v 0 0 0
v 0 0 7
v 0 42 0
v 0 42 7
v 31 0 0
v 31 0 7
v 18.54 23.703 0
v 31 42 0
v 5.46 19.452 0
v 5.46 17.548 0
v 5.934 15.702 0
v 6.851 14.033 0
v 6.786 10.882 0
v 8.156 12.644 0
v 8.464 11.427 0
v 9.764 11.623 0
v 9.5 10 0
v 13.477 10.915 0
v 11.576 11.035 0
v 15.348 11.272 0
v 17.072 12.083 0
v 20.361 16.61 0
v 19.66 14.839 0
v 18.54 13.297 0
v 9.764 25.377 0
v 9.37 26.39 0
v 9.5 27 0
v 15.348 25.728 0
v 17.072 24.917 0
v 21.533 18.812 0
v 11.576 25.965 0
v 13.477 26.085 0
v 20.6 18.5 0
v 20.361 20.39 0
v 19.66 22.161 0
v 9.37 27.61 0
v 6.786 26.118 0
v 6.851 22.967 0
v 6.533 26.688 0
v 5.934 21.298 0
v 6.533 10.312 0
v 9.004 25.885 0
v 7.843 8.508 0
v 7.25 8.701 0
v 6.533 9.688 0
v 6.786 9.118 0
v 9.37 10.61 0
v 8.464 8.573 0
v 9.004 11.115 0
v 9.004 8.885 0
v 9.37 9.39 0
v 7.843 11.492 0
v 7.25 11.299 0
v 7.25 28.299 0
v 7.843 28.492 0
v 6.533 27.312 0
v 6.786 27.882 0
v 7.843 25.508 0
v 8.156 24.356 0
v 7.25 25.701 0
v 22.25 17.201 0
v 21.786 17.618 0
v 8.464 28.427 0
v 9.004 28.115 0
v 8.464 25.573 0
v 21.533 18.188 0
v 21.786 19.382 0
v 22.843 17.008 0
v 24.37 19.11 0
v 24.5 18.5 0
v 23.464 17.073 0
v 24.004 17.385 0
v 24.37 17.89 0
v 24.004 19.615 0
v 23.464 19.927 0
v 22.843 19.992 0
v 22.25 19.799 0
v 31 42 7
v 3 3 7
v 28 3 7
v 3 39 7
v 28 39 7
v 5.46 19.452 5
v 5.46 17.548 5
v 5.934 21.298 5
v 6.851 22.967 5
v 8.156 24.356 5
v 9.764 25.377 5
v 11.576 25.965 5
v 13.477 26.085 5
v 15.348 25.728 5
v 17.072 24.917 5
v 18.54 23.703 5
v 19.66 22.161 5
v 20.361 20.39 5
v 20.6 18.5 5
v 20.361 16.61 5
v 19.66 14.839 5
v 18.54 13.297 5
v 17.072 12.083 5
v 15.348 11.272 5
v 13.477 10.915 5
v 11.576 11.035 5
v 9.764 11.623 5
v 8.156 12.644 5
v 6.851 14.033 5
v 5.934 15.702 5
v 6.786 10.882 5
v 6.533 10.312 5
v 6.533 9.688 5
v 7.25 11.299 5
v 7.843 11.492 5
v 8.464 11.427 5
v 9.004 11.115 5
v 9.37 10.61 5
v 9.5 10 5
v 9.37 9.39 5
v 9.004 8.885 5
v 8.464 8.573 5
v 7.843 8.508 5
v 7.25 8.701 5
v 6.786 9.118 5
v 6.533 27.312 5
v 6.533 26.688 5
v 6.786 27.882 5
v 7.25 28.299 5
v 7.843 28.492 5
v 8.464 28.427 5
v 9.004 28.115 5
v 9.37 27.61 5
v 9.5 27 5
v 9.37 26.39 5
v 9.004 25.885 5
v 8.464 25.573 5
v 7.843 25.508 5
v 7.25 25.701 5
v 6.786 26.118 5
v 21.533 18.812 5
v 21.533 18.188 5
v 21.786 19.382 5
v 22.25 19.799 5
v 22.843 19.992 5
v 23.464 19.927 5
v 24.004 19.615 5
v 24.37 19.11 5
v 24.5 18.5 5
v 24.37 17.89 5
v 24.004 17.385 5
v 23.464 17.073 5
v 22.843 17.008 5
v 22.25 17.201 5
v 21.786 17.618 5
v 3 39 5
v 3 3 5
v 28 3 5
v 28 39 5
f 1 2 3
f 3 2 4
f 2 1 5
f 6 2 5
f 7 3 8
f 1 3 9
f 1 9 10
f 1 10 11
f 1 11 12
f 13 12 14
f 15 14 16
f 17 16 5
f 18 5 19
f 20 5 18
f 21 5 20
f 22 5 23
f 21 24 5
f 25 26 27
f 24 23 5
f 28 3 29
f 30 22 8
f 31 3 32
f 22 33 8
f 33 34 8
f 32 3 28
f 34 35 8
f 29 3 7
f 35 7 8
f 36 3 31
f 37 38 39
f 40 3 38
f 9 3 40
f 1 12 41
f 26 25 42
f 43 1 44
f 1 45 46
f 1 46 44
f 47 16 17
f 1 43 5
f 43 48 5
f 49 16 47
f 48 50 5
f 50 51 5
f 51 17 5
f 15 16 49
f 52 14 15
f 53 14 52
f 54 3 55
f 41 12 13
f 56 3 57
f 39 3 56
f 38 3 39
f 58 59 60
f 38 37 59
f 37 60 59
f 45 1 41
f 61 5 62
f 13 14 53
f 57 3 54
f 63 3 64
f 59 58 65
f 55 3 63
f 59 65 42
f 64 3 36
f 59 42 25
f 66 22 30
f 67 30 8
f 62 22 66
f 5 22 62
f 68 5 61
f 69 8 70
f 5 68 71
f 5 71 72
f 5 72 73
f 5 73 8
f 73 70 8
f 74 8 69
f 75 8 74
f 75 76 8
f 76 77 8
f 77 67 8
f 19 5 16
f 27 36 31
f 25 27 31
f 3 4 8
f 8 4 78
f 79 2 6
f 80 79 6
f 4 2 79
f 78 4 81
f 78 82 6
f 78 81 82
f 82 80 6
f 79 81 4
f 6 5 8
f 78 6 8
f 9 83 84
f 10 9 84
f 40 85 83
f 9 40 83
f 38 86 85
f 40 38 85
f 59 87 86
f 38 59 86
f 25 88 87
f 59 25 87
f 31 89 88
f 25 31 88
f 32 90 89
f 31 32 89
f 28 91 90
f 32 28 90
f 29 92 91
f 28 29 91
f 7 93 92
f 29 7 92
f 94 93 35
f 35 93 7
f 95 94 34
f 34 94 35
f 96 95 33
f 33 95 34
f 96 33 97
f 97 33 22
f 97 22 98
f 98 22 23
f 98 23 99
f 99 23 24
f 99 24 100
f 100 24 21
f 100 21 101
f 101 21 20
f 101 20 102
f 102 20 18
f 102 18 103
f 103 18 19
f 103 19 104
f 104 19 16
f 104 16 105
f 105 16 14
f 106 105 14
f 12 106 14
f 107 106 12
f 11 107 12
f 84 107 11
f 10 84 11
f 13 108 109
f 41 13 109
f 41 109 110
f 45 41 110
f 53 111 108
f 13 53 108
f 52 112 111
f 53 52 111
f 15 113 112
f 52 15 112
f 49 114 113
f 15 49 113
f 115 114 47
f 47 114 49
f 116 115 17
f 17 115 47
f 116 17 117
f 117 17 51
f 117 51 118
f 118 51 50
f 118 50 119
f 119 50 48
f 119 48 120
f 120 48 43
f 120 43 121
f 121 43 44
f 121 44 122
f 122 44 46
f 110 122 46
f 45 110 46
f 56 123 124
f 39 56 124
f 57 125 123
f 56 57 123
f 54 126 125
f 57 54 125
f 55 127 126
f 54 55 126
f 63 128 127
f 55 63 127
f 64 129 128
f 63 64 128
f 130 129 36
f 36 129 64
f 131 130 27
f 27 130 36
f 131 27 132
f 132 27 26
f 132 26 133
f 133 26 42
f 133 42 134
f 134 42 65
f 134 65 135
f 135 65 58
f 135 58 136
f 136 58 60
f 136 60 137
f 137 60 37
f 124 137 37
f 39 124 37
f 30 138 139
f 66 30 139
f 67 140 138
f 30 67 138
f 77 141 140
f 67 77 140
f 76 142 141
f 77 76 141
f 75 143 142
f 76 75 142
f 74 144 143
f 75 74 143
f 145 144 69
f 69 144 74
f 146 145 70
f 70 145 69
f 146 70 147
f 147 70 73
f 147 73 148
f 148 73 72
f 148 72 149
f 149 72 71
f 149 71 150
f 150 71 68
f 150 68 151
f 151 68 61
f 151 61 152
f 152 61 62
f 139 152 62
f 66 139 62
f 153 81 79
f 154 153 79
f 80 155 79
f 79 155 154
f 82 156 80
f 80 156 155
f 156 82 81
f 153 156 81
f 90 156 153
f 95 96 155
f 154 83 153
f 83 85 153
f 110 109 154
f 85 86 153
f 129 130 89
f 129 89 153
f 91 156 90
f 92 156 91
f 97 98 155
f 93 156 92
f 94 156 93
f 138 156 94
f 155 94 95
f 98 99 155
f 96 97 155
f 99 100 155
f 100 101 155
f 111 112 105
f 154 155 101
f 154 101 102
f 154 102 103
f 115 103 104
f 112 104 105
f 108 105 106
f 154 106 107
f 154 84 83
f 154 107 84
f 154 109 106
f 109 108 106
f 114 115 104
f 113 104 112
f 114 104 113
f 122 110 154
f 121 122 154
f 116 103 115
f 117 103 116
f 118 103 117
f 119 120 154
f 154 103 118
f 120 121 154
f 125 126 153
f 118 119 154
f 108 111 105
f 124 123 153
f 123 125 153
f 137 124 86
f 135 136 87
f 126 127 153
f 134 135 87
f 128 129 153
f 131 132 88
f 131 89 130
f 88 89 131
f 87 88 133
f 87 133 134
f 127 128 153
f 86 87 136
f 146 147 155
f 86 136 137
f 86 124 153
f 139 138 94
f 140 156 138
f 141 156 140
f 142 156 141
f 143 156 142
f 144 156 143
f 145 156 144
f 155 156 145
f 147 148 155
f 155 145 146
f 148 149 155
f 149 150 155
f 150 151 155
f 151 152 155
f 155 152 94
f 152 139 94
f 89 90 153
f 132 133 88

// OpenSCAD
module plashka2() {
difference() {
	cube([25,35,2]);
	translate([10,14.5,-1]) cylinder(4,r=15.2/2,$fn=25);
	translate([5,6,-1]) cylinder(4,r=1.5,$fn=15);
	translate([5,35-12,-1]) cylinder(4,r=1.5,$fn=15);
	translate([25-5,14.5,-1]) cylinder(4,r=1.5,$fn=15);
}
}

//plashka2();
a=3;
b=5;
difference() {
	cube([25+2*a,36+2*a,2+b]);
	translate([a,a,b]) {
	cube([25,36,2+b]);
	translate([10,15.5,-1-b]) cylinder(4+b,r=15.2/2,$fn=25);
	translate([5,7,-1-b]) cylinder(4+b,r=1.5,$fn=15);
	translate([5,36-12,-1-b]) cylinder(4+b,r=1.5,$fn=15);
	translate([25-5,15.5,-1-b]) cylinder(4+b,r=1.5,$fn=15);
	}
}
